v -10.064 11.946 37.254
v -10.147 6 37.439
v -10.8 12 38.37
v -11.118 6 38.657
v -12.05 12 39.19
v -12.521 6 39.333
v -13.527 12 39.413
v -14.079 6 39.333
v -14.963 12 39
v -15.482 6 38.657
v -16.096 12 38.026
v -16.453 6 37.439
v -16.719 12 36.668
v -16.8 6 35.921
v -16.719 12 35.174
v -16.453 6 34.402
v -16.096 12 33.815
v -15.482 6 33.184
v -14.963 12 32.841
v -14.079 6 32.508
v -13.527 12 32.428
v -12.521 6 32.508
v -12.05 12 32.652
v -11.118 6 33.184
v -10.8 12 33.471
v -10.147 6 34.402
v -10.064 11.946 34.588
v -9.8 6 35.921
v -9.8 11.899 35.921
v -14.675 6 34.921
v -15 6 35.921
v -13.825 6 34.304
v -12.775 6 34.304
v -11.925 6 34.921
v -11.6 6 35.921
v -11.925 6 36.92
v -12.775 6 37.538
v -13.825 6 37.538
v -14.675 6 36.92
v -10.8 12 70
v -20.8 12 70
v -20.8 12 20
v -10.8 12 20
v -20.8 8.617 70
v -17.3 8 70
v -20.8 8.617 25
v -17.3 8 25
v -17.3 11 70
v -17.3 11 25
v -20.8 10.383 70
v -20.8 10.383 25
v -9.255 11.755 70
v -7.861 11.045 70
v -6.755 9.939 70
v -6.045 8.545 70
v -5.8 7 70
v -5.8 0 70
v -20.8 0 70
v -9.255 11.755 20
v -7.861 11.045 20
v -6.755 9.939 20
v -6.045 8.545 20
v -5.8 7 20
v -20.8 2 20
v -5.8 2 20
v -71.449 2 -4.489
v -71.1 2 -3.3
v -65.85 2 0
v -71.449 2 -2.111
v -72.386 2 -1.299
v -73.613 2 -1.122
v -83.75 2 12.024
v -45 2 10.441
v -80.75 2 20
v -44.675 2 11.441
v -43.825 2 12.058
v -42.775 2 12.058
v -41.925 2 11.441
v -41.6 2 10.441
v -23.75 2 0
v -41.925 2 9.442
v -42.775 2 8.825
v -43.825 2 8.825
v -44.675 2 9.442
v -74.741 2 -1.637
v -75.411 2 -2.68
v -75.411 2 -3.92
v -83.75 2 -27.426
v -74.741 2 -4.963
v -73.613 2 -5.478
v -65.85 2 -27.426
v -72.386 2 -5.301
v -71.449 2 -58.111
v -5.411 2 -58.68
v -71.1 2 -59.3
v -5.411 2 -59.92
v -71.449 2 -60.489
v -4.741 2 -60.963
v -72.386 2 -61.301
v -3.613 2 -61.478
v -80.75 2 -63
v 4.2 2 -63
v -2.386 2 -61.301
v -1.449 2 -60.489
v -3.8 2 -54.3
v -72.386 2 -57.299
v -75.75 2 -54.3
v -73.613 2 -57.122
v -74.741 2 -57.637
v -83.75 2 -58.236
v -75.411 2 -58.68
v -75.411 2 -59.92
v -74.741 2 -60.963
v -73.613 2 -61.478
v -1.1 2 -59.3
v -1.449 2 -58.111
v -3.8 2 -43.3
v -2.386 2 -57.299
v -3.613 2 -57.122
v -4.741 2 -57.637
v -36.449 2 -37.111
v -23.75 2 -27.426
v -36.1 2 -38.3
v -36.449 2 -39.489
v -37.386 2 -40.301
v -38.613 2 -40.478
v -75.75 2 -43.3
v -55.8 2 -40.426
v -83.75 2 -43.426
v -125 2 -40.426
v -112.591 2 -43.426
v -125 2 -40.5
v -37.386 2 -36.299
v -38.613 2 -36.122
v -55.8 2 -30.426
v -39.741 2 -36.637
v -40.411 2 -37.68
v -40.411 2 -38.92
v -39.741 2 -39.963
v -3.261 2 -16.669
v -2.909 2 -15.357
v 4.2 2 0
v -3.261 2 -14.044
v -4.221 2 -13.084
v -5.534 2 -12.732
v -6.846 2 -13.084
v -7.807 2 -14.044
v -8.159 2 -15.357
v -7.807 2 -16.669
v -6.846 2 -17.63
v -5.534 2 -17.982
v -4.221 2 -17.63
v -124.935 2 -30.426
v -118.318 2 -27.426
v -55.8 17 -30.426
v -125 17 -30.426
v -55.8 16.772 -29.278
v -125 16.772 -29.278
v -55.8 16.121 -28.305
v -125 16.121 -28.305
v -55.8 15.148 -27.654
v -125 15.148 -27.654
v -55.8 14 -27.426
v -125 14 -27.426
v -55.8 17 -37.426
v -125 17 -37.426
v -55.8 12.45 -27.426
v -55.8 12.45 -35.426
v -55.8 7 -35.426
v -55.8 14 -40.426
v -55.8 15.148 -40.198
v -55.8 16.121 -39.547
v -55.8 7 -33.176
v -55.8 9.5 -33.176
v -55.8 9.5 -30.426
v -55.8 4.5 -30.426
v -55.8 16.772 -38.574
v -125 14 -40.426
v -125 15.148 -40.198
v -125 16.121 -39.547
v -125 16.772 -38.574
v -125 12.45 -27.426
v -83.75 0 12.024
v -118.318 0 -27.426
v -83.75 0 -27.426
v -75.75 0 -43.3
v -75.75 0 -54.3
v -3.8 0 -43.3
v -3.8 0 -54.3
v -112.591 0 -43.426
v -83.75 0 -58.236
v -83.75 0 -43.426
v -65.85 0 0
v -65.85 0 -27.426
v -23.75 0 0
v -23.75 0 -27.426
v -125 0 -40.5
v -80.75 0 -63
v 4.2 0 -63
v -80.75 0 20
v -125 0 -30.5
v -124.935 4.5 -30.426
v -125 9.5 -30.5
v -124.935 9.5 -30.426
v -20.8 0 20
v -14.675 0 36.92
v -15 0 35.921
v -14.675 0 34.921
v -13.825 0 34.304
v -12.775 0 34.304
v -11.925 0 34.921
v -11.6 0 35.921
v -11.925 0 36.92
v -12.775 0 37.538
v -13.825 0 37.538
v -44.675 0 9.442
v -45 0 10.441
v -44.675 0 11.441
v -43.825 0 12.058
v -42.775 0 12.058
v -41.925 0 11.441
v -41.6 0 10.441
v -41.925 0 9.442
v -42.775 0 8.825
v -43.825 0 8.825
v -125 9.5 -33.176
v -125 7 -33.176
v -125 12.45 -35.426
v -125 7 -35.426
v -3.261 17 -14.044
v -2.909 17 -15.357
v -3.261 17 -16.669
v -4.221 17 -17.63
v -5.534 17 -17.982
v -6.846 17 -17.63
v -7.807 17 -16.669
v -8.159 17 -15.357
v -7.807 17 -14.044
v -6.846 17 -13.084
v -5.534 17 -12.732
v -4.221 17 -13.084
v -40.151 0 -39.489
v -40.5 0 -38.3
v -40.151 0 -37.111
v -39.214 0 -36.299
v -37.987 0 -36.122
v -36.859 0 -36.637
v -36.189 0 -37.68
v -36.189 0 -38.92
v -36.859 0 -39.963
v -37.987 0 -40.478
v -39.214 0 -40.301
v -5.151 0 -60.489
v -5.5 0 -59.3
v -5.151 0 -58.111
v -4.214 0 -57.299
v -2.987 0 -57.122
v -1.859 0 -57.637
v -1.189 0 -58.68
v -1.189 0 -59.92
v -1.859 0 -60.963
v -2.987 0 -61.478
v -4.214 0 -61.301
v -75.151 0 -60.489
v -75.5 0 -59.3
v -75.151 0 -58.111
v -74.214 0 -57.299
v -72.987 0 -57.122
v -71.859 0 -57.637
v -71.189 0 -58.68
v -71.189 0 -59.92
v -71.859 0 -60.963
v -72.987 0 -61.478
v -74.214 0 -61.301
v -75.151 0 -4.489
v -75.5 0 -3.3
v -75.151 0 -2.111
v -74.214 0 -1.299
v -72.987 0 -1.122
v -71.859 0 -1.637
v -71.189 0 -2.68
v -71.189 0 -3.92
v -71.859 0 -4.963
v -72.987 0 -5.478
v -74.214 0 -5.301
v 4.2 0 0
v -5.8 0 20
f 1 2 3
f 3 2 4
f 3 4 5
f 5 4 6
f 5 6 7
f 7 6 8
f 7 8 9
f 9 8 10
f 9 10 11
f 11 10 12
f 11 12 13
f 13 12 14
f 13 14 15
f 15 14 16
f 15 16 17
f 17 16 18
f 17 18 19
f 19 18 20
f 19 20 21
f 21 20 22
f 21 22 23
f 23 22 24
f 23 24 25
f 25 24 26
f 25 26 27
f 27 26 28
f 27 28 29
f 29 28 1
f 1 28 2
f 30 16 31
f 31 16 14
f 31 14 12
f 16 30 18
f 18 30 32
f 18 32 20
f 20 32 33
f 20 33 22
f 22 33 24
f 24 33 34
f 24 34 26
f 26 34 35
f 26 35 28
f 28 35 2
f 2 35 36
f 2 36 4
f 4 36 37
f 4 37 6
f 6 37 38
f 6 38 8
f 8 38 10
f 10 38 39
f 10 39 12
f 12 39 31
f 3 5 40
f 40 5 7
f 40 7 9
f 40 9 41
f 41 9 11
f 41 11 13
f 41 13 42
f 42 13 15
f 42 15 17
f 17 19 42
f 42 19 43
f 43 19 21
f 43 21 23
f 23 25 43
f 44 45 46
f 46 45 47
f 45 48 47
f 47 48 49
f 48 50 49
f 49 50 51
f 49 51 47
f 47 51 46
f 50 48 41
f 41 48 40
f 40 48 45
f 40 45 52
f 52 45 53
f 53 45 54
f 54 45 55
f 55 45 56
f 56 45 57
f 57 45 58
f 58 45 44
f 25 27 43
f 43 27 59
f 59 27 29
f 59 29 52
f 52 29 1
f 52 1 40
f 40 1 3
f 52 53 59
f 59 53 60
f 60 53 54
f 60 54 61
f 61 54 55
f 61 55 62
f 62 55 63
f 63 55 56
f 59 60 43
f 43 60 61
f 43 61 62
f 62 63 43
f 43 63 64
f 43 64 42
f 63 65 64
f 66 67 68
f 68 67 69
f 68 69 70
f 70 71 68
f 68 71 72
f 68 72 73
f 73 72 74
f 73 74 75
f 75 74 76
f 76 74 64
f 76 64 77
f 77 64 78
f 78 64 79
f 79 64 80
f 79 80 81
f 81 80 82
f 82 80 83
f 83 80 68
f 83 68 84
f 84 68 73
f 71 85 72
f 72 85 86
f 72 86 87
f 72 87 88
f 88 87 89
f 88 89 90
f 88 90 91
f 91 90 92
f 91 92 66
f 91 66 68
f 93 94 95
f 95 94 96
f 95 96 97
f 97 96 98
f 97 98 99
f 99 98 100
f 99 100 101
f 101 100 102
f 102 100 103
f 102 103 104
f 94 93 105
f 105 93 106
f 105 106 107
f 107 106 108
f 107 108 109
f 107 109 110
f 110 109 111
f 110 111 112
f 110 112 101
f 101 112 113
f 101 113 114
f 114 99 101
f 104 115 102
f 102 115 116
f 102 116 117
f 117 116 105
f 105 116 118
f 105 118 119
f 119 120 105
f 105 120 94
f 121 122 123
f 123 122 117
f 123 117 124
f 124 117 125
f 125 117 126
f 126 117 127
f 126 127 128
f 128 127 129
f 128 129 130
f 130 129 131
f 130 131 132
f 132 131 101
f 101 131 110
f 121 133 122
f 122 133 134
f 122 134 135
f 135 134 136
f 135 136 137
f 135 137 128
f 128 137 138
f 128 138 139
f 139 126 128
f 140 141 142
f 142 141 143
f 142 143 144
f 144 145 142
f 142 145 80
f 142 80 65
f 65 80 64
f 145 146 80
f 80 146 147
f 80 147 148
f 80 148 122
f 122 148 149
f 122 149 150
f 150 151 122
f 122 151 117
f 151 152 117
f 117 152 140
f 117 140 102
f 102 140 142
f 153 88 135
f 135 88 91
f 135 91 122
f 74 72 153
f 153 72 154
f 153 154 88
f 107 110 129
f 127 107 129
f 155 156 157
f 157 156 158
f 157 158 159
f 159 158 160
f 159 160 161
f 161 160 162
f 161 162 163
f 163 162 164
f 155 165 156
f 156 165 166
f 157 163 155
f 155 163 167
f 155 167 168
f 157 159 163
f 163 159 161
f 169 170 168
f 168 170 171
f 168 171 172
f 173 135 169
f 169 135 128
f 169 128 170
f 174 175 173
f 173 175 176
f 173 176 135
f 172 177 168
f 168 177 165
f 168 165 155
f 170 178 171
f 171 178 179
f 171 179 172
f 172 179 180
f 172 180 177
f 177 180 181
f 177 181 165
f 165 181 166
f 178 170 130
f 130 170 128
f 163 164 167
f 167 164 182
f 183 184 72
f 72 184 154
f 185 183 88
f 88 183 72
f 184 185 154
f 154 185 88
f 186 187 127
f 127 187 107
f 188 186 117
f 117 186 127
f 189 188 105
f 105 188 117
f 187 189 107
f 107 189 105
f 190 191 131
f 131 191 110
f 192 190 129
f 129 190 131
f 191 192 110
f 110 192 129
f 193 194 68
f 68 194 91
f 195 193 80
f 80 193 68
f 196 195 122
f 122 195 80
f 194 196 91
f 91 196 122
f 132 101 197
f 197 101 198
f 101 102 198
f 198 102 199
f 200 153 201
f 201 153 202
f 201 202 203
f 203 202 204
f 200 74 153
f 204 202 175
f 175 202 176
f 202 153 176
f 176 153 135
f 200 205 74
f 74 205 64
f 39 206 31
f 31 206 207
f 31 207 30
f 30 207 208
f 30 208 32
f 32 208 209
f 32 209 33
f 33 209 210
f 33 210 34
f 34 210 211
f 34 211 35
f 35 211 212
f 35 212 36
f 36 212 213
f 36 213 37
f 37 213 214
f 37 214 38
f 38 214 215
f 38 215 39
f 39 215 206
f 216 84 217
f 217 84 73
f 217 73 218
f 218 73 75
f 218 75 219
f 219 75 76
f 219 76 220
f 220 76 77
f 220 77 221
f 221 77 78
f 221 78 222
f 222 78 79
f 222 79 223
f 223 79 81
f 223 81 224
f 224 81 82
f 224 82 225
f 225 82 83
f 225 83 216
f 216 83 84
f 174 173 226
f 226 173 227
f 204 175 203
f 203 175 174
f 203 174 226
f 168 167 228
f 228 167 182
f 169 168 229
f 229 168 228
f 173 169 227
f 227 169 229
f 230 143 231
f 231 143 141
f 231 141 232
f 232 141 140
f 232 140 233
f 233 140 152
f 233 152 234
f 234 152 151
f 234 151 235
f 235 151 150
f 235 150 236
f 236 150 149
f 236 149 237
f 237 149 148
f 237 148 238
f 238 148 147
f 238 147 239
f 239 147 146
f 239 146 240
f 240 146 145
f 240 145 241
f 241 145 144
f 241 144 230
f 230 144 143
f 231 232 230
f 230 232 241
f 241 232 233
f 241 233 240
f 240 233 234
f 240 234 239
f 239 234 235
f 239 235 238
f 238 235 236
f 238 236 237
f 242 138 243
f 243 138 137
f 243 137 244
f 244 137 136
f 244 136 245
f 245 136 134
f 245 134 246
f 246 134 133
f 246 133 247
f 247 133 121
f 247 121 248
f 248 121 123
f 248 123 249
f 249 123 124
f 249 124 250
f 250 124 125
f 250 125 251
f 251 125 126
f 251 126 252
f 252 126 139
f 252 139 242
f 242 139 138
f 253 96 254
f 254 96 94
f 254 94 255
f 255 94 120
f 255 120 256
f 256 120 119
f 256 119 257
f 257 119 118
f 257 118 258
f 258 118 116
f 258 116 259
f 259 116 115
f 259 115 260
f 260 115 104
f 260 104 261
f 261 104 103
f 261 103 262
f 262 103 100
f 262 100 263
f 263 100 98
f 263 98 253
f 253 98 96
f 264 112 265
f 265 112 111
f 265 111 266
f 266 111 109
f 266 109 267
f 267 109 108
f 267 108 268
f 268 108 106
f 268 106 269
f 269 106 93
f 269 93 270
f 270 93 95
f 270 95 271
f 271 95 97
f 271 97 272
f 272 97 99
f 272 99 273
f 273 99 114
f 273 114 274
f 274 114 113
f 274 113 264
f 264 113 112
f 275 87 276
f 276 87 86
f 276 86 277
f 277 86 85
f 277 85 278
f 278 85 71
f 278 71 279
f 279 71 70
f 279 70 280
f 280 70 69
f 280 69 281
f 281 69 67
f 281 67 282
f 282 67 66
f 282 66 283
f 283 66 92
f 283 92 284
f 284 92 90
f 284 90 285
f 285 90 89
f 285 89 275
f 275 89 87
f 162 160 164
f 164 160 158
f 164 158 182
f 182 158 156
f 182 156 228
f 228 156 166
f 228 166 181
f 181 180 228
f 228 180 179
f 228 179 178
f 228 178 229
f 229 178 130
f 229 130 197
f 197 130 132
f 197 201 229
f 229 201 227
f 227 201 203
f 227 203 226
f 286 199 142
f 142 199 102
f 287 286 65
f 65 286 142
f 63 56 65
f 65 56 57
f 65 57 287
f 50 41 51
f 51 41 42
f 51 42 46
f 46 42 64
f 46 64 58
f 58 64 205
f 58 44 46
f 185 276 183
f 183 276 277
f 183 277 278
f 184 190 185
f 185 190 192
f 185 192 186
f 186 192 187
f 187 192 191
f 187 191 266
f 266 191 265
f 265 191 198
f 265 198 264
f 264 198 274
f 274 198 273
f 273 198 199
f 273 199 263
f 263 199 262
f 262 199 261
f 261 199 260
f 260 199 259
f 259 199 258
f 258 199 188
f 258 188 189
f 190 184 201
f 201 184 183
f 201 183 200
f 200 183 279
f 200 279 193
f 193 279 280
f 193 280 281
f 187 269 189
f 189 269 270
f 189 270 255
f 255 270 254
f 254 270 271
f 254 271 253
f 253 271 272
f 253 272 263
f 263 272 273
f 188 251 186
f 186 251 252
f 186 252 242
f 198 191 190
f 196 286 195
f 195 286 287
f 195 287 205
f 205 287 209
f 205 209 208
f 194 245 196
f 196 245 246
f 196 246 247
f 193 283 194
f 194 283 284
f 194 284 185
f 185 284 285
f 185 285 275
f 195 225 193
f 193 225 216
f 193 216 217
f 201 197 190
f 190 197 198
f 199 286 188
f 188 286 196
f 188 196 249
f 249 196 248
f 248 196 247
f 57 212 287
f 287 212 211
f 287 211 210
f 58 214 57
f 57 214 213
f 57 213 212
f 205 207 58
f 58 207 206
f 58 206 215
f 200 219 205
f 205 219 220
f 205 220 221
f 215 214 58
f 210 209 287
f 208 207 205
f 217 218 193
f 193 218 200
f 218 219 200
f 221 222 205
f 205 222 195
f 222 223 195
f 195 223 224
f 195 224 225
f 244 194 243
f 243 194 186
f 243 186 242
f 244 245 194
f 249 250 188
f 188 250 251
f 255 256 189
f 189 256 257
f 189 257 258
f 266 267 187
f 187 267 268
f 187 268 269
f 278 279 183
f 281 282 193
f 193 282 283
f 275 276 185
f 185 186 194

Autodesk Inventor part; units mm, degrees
ref_plane "YZ Plane" through (0, 0, 0) normal (1, 0, 0) x (0, 1, 0)
ref_plane "XZ Plane" through (0, 0, 0) normal (0, 1, 0) x (-1, 0, 0)
ref_plane "XY Plane" through (0, 0, 0) normal (0, 0, 1) x (1, 0, 0)
sketch "Sketch1" plane through (0, 0, 0) normal (0, 1, 0) x (-1, 0, 0)
  line L0 (125, 0) -> (125, -63)
  line L1 (125, -63) -> (-4.2, -63)
  line L2 (-4.2, -63) -> (-4.2, 0)
  line L3 (-4.2, 0) -> (5.8, 0)
  line L4 (5.8, 0) -> (5.8, 40)
  line L5 (20.8, 40) -> (20.8, 0)
  line L6 (20.8, 0) -> (125, 0)
  line L7 (5.8, 40) -> (5.8, 70)
  line L8 (5.8, 70) -> (20.8, 70)
  line L9 (20.8, 70) -> (20.8, 40)
  line L10 (125, 0) -> (125, 20)
  line L11 (125, 20) -> (5.8, 20)
  line L12 (-4.2, -1.8) -> (-4.2, -60.8) projected
  line L13 (-4.2, 0) -> (5.8, 20)
  line L14 (125, -35.426) -> (125, -25.426) projected
  point P0 (20.8, 20)
  dimension "d1" = 63
  dimension "d2" = 15
  dimension "d3" = 40
  dimension "d4" = 10
  dimension "d51" = 30
  dimension "d127" = 20
  dimension "d129" = 126.9309
  dimension "d130" = 104.2
  dimension "d131" = 13.4164
extrude "Extrusion1" add sketch "Sketch1" along normal blind 2
sketch "Sketch2" plane through (0, 2, 0) normal (0, 1, 0) x (1, 0, 0)
  line L0 (-73.3, 3.3) -> (-3.3, 3.3) construction
  line L1 (-3.3, 3.3) -> (-3.3, 59.3) construction
  line L2 (-3.3, 59.3) -> (-73.3, 59.3) construction
  line L3 (-73.3, 59.3) -> (-73.3, 3.3) construction
  circle A0 centre (-73.3, 3.3) radius 1.7
  circle A1 centre (-73.3, 59.3) radius 1.7
  circle A2 centre (-3.3, 59.3) radius 1.7
  point P0 (0, 0)
  dimension "d7" = 70
  dimension "d8" = 56
  dimension "d9" = 3.3
  dimension "d11" = 3.4
  dimension "d12" = 3.4
  dimension "d13" = 3.4
  dimension "d197" = 3.3
hole "Hole1" at (-73.3, 2, -3.3) at (-73.3, 2, -59.3) at (-3.3, 2, -59.3) direction (0, -1, 0) diameter 4.4 end through all
sketch "Sketch3" plane through (0, 2, 0) normal (0, 1, 0) x (1, 0, 0)
  circle A0 centre (-3.3, 59.3) radius 2.2 construction
  circle A1 centre (-73.3, 59.3) radius 2.2 construction
  circle A2 centre (-73.3, 3.3) radius 2.2 construction
  line L0 (-20.8, -20) -> (-20.8, -70) construction
  line L1 (-5.8, -70) -> (-5.8, -20) construction
  line L2 (4.2, 0) -> (4.2, 63) construction
  line L3 (4.2, 63) -> (-125, 63) construction
  line L4 (-73.3, 3.3) -> (-3.3, 3.3) construction
  line L5 (-3.3, 3.3) -> (-3.3, 59.3) construction
  line L6 (-3.3, 38.3) -> (-38.3, 38.3) construction
  line L7 (-38.3, 38.3) -> (-38.3, 3.3) construction
  circle A3 centre (-38.3, 38.3) radius 2.2 construction
  line L8 (-20.8, -70) -> (-5.8, -70) projected
  line L9 (-5.8, -20) -> (4.2, 0) projected
  line L10 (-125, 63) -> (-125, -20) projected
  line L11 (-125, -20) -> (-20.8, -20) projected
  point P0 (0, 0)
  dimension "d24" = 35
  dimension "d25" = 35
  dimension "d26" = 4.4
hole "Hole2" at (-38.3, 2, -38.3) direction (0, -1, 0) diameter 4.4 end through all
sketch "Sketch5" plane through (0, 2, 0) normal (0, 1, 0) x (1, 0, 0)
  circle A0 centre (-38.3, 38.3) radius 2.2 projected
  circle A1 centre (-5.5339, 15.3569) radius 2.625
  line L0 (-38.3, 38.3) -> (-5.5339, 15.3569)
  line L1 (-38.3, 38.3) -> (-38.3, 10.8789)
  point P0 (0, 0)
  dimension "d44" = 5.25
  dimension "d46" = 40
  dimension "d47" = 55
  dimension "d200" = 27.4211
extrude "Extrusion2" add sketch "Sketch5" along normal blind 15 contours A1
sketch "Sketch6" plane through (0, 2, 0) normal (0, 1, 0) x (1, 0, 0)
  line L0 (-80.8, 40.4259) -> (-55.8, 40.4259)
  line L1 (-55.8, 40.4259) -> (-55.8, 30.4259)
  line L2 (-55.8, 30.4259) -> (-80.8, 30.4259)
  line L3 (-80.8, 30.4259) -> (-80.8, 40.4259)
  circle A0 centre (-5.5339, 15.3569) radius 2.625 projected
  circle A1 centre (-5.5339, 15.3569) radius 2.625 projected
  line L4 (-5.5339, 15.3569) -> (-80.8, 15.3569) construction
  point P0 (0, 0)
  point P1 (-55.8, 35.4259)
  dimension "d54" = 10
  dimension "d132" = 25
  dimension "d133" = 30.4259
  dimension "d134" = 66.0957
  dimension "d206" = 80.8
extrude "Extrusion3" add sketch "Sketch6" along normal blind 15 contours L0 L1 L2 L3
sketch "Sketch7" plane through (-80.8, 2, -40.4259) normal (-1, 0, 0) x (0, 0, 1)
  line L0 (10, 2.5) -> (5, 2.5)
  line L1 (9.9999, 7.5) -> (6.9999, 7.5) projected
  line L2 (10, 0) -> (10, 15) projected
  line L3 (4.9999, 5) -> (6.9999, 5) projected
  line L4 (6.9999, 5) -> (6.9999, 7.5) projected
  line L5 (-22.5741, 0) -> (60.4259, 0) projected
  line L6 (7.2499, 7.5) -> (7.2499, 5)
  line L7 (7.2499, 5) -> (6.9999, 5)
  line L8 (5, 10.45) -> (10, 10.45)
  line L9 (5, 10.45) -> (5, 2.5)
  line L10 (7.2499, 7.5) -> (9.9999, 7.5)
  line L11 (10, 2.5) -> (9.9999, 7.5)
  point P0 (5, 5)
  dimension "d186" = 0.25
  dimension "d256" = 2.5
  dimension "d257" = 0.25
  dimension "d274" = 7.95
  dimension "d275" = 5
extrude "Extrusion4" cut sketch "Sketch7" against normal up to surface (25 mm away) contours L1 L4 L3 L9 L8 L2 | L6 L7 L4 L1
sketch "Sketch13" plane through (0, 2, 0) normal (0, 1, 0) x (1, 0, 0)
  point P0 (0, 0)
sketch "Sketch15" plane through (-80.8, 2, -40.4259) normal (-1, 0, 0) x (0, 0, 1)
  line L0 (10, 10.45) -> (10, 15) projected
  line L1 (0, 15) -> (10, 15) projected
  line L2 (0, 0) -> (0, 15) projected
  line L3 (10, 0) -> (0, 0) projected
  line L4 (10, 0) -> (10, 2.5) projected
  line L5 (5, 10.45) -> (10, 10.45) projected
  line L6 (5, 5) -> (5, 10.45) projected
  line L7 (10, 2.5) -> (9.9999, 7.5) projected
  line L8 (9.9999, 7.5) -> (7.2499, 7.5) projected
  line L9 (7.2499, 7.5) -> (7.2499, 5) projected
  line L10 (7.2499, 5) -> (5, 5) projected
  point P0 (40.4259, -2)
extrude "Extrusion9" add sketch "Sketch15" along normal up to surface (44.2 mm away)
sketch "Sketch18" plane through (0, 2, 0) normal (0, 1, 0) x (1, 0, 0)
  point P0 (0, 0)
  point P1 (-43.3, -10.4414)
  point P2 (-13.3, -35.9207)
hole "Hole4" at (-43.3, 2, 10.4414) at (-13.3, 2, 35.9207) direction (0, -1, 0) diameter 3.4 end through all
chamfer "Chamfer1" distance 50.5 distance2 44.25 1 edges at (-125, 1, 20) measured on face at (-125, 0.6667, -24.4753)
chamfer "Chamfer2" distance 44.25 distance2 22.5 1 edges at (-125, 1, -63) measured on face at (-38.8667, 1.3333, -63)
sketch "Sketch19" plane through (0, 2, 0) normal (0, 1, 0) x (1, 0, 0)
  line L0 (-125, 30.5) -> (-80.75, -20) projected
  line L1 (-80.75, -20) -> (-80.75, 30.4259)
  line L2 (-55.8, 30.4259) -> (-124.9351, 30.4259) projected
  line L3 (-124.9351, 30.4259) -> (-80.75, -20)
  line L4 (-80.75, 63.1491) -> (-125, 40.4259)
  line L5 (-125, 40.4259) -> (-80.75, 40.4259)
  line L6 (-80.75, 40.4259) -> (-80.75, 63.1491)
  line L7 (-80.75, 30.4259) -> (-124.9351, 30.4259)
  line L8 (-83.75, 27.4259) -> (-83.75, -12.0241)
  line L9 (-83.75, -12.0241) -> (-118.3176, 27.4259)
  line L10 (-118.3176, 27.4259) -> (-83.75, 27.4259)
  line L11 (-83.75, 43.4259) -> (-112.5906, 43.4259)
  line L12 (-112.5906, 43.4259) -> (-83.75, 58.2361)
  line L13 (-83.75, 58.2361) -> (-83.75, 43.4259)
  line L14 (-80.75, 0) -> (-20.75, 0)
  line L15 (-20.75, 0) -> (-20.75, 30.4259)
  line L16 (-20.75, 30.4259) -> (-80.75, 30.4259)
  line L17 (-80.75, 0) -> (-80.75, 30.4259)
  line L18 (-80.75, 27.4259) -> (-23.75, 27.4259)
  line L19 (-23.75, 27.4259) -> (-23.75, 0)
  line L20 (-65.85, 0) -> (-65.85, 27.4259)
  circle A0 centre (-73.3, 3.3) radius 2.2 projected
  line L21 (-75.75, 54.3) -> (-3.8, 54.3)
  line L22 (-3.8, 54.3) -> (-3.8, 43.3)
  line L23 (-3.8, 43.3) -> (-75.75, 43.3)
  line L24 (-75.75, 43.3) -> (-75.75, 54.3)
  line L25 (4.2, 0) -> (4.2, 63) projected
  circle A1 centre (-38.3, 38.3) radius 2.2 projected
  circle A2 centre (-73.3, 59.3) radius 2.9111 projected
  point P0 (0, 0)
  dimension "d160" = 3
  dimension "d161" = 3
  dimension "d164" = 60
  dimension "d165" = 30.4259
  dimension "d167" = 3
  dimension "d168" = 3
  dimension "d169" = 7.45
  dimension "d176" = 5
  dimension "d177" = 8
  dimension "d178" = 5
  dimension "d179" = 5
  dimension "d312" = 49.7434
extrude "Extrusion11" cut sketch "Sketch19" against normal blind 10 contours L20 L18 L19 L14 | L8 L9 L10 | L11 L12 L13 | L21 L22 L23 L24
sketch "Sketch20" plane through (-125, 17, -30.4259) normal (0, 0, 1) x (1, 0, 0)
  line L0 (0, -4.55) -> (69.2, -4.55) projected
  line L1 (69.2, -4.55) -> (69.2, 0) projected
  line L2 (69.2, 0) -> (0, 0) projected
  line L3 (0, 0) -> (0, -4.55) projected
  point P0 (125, -17)
extrude "Extrusion12" add sketch "Sketch20" along normal blind 3
fillet "Fillet1" radius 3 2 edges at (-90.4, 17, -40.4259) (-90.4, 17, -27.4259)
sketch "Sketch21" plane through (0, 2, 0) normal (0, 1, 0) x (1, 0, 0)
  line L0 (-80.75, -20) -> (-20.8, -20) projected
  line L1 (-20.8, -70) -> (-5.8, -70) projected
  line L2 (-20.8, -20) -> (-5.8, -20)
  line L3 (-5.8, -20) -> (-5.8, -70)
  line L4 (-5.8, -70) -> (-20.8, -70)
  line L5 (-20.8, -70) -> (-20.8, -20)
  circle A0 centre (-13.3, -35.9207) radius 1.7 projected
  point P0 (0, 0)
extrude "Extrusion13" add sketch "Sketch21" along normal blind 10
fillet "Fillet2" radius 5 1 edges at (-5.8, 12, 45)
sketch "Sketch22" plane through (-20.8, 0, 70) normal (0, 0, 1) x (1, 0, 0)
  line L0 (0, 8.6171) -> (3.5, 8)
  line L1 (3.5, 11) -> (0, 10.3829)
  line L2 (3.5, 11) -> (3.5, 8)
  line L3 (0, 0) -> (15, 0) projected
  line L4 (0, 0) -> (0, 12) projected
  line L5 (0, 10.3829) -> (0, 8.6171)
  dimension "d333" = 80
  dimension "d334" = 80
  dimension "d336" = 3
  dimension "d346" = 15
  dimension "d347" = 3.5
  dimension "d348" = 8.6171
extrude "Extrusion14" cut sketch "Sketch22" against normal blind 45
sketch "Sketch23" plane through (0, 12, 0) normal (0, 1, 0) x (1, 0, 0)
  circle A0 centre (-13.3, -35.9207) radius 1.7 projected
  point P0 (0, 0)
hole "Hole5" at (-13.3, 12, 35.9207) direction (0, -1, 0) diameter 7 depth 6
properties part number "BasePlate"
